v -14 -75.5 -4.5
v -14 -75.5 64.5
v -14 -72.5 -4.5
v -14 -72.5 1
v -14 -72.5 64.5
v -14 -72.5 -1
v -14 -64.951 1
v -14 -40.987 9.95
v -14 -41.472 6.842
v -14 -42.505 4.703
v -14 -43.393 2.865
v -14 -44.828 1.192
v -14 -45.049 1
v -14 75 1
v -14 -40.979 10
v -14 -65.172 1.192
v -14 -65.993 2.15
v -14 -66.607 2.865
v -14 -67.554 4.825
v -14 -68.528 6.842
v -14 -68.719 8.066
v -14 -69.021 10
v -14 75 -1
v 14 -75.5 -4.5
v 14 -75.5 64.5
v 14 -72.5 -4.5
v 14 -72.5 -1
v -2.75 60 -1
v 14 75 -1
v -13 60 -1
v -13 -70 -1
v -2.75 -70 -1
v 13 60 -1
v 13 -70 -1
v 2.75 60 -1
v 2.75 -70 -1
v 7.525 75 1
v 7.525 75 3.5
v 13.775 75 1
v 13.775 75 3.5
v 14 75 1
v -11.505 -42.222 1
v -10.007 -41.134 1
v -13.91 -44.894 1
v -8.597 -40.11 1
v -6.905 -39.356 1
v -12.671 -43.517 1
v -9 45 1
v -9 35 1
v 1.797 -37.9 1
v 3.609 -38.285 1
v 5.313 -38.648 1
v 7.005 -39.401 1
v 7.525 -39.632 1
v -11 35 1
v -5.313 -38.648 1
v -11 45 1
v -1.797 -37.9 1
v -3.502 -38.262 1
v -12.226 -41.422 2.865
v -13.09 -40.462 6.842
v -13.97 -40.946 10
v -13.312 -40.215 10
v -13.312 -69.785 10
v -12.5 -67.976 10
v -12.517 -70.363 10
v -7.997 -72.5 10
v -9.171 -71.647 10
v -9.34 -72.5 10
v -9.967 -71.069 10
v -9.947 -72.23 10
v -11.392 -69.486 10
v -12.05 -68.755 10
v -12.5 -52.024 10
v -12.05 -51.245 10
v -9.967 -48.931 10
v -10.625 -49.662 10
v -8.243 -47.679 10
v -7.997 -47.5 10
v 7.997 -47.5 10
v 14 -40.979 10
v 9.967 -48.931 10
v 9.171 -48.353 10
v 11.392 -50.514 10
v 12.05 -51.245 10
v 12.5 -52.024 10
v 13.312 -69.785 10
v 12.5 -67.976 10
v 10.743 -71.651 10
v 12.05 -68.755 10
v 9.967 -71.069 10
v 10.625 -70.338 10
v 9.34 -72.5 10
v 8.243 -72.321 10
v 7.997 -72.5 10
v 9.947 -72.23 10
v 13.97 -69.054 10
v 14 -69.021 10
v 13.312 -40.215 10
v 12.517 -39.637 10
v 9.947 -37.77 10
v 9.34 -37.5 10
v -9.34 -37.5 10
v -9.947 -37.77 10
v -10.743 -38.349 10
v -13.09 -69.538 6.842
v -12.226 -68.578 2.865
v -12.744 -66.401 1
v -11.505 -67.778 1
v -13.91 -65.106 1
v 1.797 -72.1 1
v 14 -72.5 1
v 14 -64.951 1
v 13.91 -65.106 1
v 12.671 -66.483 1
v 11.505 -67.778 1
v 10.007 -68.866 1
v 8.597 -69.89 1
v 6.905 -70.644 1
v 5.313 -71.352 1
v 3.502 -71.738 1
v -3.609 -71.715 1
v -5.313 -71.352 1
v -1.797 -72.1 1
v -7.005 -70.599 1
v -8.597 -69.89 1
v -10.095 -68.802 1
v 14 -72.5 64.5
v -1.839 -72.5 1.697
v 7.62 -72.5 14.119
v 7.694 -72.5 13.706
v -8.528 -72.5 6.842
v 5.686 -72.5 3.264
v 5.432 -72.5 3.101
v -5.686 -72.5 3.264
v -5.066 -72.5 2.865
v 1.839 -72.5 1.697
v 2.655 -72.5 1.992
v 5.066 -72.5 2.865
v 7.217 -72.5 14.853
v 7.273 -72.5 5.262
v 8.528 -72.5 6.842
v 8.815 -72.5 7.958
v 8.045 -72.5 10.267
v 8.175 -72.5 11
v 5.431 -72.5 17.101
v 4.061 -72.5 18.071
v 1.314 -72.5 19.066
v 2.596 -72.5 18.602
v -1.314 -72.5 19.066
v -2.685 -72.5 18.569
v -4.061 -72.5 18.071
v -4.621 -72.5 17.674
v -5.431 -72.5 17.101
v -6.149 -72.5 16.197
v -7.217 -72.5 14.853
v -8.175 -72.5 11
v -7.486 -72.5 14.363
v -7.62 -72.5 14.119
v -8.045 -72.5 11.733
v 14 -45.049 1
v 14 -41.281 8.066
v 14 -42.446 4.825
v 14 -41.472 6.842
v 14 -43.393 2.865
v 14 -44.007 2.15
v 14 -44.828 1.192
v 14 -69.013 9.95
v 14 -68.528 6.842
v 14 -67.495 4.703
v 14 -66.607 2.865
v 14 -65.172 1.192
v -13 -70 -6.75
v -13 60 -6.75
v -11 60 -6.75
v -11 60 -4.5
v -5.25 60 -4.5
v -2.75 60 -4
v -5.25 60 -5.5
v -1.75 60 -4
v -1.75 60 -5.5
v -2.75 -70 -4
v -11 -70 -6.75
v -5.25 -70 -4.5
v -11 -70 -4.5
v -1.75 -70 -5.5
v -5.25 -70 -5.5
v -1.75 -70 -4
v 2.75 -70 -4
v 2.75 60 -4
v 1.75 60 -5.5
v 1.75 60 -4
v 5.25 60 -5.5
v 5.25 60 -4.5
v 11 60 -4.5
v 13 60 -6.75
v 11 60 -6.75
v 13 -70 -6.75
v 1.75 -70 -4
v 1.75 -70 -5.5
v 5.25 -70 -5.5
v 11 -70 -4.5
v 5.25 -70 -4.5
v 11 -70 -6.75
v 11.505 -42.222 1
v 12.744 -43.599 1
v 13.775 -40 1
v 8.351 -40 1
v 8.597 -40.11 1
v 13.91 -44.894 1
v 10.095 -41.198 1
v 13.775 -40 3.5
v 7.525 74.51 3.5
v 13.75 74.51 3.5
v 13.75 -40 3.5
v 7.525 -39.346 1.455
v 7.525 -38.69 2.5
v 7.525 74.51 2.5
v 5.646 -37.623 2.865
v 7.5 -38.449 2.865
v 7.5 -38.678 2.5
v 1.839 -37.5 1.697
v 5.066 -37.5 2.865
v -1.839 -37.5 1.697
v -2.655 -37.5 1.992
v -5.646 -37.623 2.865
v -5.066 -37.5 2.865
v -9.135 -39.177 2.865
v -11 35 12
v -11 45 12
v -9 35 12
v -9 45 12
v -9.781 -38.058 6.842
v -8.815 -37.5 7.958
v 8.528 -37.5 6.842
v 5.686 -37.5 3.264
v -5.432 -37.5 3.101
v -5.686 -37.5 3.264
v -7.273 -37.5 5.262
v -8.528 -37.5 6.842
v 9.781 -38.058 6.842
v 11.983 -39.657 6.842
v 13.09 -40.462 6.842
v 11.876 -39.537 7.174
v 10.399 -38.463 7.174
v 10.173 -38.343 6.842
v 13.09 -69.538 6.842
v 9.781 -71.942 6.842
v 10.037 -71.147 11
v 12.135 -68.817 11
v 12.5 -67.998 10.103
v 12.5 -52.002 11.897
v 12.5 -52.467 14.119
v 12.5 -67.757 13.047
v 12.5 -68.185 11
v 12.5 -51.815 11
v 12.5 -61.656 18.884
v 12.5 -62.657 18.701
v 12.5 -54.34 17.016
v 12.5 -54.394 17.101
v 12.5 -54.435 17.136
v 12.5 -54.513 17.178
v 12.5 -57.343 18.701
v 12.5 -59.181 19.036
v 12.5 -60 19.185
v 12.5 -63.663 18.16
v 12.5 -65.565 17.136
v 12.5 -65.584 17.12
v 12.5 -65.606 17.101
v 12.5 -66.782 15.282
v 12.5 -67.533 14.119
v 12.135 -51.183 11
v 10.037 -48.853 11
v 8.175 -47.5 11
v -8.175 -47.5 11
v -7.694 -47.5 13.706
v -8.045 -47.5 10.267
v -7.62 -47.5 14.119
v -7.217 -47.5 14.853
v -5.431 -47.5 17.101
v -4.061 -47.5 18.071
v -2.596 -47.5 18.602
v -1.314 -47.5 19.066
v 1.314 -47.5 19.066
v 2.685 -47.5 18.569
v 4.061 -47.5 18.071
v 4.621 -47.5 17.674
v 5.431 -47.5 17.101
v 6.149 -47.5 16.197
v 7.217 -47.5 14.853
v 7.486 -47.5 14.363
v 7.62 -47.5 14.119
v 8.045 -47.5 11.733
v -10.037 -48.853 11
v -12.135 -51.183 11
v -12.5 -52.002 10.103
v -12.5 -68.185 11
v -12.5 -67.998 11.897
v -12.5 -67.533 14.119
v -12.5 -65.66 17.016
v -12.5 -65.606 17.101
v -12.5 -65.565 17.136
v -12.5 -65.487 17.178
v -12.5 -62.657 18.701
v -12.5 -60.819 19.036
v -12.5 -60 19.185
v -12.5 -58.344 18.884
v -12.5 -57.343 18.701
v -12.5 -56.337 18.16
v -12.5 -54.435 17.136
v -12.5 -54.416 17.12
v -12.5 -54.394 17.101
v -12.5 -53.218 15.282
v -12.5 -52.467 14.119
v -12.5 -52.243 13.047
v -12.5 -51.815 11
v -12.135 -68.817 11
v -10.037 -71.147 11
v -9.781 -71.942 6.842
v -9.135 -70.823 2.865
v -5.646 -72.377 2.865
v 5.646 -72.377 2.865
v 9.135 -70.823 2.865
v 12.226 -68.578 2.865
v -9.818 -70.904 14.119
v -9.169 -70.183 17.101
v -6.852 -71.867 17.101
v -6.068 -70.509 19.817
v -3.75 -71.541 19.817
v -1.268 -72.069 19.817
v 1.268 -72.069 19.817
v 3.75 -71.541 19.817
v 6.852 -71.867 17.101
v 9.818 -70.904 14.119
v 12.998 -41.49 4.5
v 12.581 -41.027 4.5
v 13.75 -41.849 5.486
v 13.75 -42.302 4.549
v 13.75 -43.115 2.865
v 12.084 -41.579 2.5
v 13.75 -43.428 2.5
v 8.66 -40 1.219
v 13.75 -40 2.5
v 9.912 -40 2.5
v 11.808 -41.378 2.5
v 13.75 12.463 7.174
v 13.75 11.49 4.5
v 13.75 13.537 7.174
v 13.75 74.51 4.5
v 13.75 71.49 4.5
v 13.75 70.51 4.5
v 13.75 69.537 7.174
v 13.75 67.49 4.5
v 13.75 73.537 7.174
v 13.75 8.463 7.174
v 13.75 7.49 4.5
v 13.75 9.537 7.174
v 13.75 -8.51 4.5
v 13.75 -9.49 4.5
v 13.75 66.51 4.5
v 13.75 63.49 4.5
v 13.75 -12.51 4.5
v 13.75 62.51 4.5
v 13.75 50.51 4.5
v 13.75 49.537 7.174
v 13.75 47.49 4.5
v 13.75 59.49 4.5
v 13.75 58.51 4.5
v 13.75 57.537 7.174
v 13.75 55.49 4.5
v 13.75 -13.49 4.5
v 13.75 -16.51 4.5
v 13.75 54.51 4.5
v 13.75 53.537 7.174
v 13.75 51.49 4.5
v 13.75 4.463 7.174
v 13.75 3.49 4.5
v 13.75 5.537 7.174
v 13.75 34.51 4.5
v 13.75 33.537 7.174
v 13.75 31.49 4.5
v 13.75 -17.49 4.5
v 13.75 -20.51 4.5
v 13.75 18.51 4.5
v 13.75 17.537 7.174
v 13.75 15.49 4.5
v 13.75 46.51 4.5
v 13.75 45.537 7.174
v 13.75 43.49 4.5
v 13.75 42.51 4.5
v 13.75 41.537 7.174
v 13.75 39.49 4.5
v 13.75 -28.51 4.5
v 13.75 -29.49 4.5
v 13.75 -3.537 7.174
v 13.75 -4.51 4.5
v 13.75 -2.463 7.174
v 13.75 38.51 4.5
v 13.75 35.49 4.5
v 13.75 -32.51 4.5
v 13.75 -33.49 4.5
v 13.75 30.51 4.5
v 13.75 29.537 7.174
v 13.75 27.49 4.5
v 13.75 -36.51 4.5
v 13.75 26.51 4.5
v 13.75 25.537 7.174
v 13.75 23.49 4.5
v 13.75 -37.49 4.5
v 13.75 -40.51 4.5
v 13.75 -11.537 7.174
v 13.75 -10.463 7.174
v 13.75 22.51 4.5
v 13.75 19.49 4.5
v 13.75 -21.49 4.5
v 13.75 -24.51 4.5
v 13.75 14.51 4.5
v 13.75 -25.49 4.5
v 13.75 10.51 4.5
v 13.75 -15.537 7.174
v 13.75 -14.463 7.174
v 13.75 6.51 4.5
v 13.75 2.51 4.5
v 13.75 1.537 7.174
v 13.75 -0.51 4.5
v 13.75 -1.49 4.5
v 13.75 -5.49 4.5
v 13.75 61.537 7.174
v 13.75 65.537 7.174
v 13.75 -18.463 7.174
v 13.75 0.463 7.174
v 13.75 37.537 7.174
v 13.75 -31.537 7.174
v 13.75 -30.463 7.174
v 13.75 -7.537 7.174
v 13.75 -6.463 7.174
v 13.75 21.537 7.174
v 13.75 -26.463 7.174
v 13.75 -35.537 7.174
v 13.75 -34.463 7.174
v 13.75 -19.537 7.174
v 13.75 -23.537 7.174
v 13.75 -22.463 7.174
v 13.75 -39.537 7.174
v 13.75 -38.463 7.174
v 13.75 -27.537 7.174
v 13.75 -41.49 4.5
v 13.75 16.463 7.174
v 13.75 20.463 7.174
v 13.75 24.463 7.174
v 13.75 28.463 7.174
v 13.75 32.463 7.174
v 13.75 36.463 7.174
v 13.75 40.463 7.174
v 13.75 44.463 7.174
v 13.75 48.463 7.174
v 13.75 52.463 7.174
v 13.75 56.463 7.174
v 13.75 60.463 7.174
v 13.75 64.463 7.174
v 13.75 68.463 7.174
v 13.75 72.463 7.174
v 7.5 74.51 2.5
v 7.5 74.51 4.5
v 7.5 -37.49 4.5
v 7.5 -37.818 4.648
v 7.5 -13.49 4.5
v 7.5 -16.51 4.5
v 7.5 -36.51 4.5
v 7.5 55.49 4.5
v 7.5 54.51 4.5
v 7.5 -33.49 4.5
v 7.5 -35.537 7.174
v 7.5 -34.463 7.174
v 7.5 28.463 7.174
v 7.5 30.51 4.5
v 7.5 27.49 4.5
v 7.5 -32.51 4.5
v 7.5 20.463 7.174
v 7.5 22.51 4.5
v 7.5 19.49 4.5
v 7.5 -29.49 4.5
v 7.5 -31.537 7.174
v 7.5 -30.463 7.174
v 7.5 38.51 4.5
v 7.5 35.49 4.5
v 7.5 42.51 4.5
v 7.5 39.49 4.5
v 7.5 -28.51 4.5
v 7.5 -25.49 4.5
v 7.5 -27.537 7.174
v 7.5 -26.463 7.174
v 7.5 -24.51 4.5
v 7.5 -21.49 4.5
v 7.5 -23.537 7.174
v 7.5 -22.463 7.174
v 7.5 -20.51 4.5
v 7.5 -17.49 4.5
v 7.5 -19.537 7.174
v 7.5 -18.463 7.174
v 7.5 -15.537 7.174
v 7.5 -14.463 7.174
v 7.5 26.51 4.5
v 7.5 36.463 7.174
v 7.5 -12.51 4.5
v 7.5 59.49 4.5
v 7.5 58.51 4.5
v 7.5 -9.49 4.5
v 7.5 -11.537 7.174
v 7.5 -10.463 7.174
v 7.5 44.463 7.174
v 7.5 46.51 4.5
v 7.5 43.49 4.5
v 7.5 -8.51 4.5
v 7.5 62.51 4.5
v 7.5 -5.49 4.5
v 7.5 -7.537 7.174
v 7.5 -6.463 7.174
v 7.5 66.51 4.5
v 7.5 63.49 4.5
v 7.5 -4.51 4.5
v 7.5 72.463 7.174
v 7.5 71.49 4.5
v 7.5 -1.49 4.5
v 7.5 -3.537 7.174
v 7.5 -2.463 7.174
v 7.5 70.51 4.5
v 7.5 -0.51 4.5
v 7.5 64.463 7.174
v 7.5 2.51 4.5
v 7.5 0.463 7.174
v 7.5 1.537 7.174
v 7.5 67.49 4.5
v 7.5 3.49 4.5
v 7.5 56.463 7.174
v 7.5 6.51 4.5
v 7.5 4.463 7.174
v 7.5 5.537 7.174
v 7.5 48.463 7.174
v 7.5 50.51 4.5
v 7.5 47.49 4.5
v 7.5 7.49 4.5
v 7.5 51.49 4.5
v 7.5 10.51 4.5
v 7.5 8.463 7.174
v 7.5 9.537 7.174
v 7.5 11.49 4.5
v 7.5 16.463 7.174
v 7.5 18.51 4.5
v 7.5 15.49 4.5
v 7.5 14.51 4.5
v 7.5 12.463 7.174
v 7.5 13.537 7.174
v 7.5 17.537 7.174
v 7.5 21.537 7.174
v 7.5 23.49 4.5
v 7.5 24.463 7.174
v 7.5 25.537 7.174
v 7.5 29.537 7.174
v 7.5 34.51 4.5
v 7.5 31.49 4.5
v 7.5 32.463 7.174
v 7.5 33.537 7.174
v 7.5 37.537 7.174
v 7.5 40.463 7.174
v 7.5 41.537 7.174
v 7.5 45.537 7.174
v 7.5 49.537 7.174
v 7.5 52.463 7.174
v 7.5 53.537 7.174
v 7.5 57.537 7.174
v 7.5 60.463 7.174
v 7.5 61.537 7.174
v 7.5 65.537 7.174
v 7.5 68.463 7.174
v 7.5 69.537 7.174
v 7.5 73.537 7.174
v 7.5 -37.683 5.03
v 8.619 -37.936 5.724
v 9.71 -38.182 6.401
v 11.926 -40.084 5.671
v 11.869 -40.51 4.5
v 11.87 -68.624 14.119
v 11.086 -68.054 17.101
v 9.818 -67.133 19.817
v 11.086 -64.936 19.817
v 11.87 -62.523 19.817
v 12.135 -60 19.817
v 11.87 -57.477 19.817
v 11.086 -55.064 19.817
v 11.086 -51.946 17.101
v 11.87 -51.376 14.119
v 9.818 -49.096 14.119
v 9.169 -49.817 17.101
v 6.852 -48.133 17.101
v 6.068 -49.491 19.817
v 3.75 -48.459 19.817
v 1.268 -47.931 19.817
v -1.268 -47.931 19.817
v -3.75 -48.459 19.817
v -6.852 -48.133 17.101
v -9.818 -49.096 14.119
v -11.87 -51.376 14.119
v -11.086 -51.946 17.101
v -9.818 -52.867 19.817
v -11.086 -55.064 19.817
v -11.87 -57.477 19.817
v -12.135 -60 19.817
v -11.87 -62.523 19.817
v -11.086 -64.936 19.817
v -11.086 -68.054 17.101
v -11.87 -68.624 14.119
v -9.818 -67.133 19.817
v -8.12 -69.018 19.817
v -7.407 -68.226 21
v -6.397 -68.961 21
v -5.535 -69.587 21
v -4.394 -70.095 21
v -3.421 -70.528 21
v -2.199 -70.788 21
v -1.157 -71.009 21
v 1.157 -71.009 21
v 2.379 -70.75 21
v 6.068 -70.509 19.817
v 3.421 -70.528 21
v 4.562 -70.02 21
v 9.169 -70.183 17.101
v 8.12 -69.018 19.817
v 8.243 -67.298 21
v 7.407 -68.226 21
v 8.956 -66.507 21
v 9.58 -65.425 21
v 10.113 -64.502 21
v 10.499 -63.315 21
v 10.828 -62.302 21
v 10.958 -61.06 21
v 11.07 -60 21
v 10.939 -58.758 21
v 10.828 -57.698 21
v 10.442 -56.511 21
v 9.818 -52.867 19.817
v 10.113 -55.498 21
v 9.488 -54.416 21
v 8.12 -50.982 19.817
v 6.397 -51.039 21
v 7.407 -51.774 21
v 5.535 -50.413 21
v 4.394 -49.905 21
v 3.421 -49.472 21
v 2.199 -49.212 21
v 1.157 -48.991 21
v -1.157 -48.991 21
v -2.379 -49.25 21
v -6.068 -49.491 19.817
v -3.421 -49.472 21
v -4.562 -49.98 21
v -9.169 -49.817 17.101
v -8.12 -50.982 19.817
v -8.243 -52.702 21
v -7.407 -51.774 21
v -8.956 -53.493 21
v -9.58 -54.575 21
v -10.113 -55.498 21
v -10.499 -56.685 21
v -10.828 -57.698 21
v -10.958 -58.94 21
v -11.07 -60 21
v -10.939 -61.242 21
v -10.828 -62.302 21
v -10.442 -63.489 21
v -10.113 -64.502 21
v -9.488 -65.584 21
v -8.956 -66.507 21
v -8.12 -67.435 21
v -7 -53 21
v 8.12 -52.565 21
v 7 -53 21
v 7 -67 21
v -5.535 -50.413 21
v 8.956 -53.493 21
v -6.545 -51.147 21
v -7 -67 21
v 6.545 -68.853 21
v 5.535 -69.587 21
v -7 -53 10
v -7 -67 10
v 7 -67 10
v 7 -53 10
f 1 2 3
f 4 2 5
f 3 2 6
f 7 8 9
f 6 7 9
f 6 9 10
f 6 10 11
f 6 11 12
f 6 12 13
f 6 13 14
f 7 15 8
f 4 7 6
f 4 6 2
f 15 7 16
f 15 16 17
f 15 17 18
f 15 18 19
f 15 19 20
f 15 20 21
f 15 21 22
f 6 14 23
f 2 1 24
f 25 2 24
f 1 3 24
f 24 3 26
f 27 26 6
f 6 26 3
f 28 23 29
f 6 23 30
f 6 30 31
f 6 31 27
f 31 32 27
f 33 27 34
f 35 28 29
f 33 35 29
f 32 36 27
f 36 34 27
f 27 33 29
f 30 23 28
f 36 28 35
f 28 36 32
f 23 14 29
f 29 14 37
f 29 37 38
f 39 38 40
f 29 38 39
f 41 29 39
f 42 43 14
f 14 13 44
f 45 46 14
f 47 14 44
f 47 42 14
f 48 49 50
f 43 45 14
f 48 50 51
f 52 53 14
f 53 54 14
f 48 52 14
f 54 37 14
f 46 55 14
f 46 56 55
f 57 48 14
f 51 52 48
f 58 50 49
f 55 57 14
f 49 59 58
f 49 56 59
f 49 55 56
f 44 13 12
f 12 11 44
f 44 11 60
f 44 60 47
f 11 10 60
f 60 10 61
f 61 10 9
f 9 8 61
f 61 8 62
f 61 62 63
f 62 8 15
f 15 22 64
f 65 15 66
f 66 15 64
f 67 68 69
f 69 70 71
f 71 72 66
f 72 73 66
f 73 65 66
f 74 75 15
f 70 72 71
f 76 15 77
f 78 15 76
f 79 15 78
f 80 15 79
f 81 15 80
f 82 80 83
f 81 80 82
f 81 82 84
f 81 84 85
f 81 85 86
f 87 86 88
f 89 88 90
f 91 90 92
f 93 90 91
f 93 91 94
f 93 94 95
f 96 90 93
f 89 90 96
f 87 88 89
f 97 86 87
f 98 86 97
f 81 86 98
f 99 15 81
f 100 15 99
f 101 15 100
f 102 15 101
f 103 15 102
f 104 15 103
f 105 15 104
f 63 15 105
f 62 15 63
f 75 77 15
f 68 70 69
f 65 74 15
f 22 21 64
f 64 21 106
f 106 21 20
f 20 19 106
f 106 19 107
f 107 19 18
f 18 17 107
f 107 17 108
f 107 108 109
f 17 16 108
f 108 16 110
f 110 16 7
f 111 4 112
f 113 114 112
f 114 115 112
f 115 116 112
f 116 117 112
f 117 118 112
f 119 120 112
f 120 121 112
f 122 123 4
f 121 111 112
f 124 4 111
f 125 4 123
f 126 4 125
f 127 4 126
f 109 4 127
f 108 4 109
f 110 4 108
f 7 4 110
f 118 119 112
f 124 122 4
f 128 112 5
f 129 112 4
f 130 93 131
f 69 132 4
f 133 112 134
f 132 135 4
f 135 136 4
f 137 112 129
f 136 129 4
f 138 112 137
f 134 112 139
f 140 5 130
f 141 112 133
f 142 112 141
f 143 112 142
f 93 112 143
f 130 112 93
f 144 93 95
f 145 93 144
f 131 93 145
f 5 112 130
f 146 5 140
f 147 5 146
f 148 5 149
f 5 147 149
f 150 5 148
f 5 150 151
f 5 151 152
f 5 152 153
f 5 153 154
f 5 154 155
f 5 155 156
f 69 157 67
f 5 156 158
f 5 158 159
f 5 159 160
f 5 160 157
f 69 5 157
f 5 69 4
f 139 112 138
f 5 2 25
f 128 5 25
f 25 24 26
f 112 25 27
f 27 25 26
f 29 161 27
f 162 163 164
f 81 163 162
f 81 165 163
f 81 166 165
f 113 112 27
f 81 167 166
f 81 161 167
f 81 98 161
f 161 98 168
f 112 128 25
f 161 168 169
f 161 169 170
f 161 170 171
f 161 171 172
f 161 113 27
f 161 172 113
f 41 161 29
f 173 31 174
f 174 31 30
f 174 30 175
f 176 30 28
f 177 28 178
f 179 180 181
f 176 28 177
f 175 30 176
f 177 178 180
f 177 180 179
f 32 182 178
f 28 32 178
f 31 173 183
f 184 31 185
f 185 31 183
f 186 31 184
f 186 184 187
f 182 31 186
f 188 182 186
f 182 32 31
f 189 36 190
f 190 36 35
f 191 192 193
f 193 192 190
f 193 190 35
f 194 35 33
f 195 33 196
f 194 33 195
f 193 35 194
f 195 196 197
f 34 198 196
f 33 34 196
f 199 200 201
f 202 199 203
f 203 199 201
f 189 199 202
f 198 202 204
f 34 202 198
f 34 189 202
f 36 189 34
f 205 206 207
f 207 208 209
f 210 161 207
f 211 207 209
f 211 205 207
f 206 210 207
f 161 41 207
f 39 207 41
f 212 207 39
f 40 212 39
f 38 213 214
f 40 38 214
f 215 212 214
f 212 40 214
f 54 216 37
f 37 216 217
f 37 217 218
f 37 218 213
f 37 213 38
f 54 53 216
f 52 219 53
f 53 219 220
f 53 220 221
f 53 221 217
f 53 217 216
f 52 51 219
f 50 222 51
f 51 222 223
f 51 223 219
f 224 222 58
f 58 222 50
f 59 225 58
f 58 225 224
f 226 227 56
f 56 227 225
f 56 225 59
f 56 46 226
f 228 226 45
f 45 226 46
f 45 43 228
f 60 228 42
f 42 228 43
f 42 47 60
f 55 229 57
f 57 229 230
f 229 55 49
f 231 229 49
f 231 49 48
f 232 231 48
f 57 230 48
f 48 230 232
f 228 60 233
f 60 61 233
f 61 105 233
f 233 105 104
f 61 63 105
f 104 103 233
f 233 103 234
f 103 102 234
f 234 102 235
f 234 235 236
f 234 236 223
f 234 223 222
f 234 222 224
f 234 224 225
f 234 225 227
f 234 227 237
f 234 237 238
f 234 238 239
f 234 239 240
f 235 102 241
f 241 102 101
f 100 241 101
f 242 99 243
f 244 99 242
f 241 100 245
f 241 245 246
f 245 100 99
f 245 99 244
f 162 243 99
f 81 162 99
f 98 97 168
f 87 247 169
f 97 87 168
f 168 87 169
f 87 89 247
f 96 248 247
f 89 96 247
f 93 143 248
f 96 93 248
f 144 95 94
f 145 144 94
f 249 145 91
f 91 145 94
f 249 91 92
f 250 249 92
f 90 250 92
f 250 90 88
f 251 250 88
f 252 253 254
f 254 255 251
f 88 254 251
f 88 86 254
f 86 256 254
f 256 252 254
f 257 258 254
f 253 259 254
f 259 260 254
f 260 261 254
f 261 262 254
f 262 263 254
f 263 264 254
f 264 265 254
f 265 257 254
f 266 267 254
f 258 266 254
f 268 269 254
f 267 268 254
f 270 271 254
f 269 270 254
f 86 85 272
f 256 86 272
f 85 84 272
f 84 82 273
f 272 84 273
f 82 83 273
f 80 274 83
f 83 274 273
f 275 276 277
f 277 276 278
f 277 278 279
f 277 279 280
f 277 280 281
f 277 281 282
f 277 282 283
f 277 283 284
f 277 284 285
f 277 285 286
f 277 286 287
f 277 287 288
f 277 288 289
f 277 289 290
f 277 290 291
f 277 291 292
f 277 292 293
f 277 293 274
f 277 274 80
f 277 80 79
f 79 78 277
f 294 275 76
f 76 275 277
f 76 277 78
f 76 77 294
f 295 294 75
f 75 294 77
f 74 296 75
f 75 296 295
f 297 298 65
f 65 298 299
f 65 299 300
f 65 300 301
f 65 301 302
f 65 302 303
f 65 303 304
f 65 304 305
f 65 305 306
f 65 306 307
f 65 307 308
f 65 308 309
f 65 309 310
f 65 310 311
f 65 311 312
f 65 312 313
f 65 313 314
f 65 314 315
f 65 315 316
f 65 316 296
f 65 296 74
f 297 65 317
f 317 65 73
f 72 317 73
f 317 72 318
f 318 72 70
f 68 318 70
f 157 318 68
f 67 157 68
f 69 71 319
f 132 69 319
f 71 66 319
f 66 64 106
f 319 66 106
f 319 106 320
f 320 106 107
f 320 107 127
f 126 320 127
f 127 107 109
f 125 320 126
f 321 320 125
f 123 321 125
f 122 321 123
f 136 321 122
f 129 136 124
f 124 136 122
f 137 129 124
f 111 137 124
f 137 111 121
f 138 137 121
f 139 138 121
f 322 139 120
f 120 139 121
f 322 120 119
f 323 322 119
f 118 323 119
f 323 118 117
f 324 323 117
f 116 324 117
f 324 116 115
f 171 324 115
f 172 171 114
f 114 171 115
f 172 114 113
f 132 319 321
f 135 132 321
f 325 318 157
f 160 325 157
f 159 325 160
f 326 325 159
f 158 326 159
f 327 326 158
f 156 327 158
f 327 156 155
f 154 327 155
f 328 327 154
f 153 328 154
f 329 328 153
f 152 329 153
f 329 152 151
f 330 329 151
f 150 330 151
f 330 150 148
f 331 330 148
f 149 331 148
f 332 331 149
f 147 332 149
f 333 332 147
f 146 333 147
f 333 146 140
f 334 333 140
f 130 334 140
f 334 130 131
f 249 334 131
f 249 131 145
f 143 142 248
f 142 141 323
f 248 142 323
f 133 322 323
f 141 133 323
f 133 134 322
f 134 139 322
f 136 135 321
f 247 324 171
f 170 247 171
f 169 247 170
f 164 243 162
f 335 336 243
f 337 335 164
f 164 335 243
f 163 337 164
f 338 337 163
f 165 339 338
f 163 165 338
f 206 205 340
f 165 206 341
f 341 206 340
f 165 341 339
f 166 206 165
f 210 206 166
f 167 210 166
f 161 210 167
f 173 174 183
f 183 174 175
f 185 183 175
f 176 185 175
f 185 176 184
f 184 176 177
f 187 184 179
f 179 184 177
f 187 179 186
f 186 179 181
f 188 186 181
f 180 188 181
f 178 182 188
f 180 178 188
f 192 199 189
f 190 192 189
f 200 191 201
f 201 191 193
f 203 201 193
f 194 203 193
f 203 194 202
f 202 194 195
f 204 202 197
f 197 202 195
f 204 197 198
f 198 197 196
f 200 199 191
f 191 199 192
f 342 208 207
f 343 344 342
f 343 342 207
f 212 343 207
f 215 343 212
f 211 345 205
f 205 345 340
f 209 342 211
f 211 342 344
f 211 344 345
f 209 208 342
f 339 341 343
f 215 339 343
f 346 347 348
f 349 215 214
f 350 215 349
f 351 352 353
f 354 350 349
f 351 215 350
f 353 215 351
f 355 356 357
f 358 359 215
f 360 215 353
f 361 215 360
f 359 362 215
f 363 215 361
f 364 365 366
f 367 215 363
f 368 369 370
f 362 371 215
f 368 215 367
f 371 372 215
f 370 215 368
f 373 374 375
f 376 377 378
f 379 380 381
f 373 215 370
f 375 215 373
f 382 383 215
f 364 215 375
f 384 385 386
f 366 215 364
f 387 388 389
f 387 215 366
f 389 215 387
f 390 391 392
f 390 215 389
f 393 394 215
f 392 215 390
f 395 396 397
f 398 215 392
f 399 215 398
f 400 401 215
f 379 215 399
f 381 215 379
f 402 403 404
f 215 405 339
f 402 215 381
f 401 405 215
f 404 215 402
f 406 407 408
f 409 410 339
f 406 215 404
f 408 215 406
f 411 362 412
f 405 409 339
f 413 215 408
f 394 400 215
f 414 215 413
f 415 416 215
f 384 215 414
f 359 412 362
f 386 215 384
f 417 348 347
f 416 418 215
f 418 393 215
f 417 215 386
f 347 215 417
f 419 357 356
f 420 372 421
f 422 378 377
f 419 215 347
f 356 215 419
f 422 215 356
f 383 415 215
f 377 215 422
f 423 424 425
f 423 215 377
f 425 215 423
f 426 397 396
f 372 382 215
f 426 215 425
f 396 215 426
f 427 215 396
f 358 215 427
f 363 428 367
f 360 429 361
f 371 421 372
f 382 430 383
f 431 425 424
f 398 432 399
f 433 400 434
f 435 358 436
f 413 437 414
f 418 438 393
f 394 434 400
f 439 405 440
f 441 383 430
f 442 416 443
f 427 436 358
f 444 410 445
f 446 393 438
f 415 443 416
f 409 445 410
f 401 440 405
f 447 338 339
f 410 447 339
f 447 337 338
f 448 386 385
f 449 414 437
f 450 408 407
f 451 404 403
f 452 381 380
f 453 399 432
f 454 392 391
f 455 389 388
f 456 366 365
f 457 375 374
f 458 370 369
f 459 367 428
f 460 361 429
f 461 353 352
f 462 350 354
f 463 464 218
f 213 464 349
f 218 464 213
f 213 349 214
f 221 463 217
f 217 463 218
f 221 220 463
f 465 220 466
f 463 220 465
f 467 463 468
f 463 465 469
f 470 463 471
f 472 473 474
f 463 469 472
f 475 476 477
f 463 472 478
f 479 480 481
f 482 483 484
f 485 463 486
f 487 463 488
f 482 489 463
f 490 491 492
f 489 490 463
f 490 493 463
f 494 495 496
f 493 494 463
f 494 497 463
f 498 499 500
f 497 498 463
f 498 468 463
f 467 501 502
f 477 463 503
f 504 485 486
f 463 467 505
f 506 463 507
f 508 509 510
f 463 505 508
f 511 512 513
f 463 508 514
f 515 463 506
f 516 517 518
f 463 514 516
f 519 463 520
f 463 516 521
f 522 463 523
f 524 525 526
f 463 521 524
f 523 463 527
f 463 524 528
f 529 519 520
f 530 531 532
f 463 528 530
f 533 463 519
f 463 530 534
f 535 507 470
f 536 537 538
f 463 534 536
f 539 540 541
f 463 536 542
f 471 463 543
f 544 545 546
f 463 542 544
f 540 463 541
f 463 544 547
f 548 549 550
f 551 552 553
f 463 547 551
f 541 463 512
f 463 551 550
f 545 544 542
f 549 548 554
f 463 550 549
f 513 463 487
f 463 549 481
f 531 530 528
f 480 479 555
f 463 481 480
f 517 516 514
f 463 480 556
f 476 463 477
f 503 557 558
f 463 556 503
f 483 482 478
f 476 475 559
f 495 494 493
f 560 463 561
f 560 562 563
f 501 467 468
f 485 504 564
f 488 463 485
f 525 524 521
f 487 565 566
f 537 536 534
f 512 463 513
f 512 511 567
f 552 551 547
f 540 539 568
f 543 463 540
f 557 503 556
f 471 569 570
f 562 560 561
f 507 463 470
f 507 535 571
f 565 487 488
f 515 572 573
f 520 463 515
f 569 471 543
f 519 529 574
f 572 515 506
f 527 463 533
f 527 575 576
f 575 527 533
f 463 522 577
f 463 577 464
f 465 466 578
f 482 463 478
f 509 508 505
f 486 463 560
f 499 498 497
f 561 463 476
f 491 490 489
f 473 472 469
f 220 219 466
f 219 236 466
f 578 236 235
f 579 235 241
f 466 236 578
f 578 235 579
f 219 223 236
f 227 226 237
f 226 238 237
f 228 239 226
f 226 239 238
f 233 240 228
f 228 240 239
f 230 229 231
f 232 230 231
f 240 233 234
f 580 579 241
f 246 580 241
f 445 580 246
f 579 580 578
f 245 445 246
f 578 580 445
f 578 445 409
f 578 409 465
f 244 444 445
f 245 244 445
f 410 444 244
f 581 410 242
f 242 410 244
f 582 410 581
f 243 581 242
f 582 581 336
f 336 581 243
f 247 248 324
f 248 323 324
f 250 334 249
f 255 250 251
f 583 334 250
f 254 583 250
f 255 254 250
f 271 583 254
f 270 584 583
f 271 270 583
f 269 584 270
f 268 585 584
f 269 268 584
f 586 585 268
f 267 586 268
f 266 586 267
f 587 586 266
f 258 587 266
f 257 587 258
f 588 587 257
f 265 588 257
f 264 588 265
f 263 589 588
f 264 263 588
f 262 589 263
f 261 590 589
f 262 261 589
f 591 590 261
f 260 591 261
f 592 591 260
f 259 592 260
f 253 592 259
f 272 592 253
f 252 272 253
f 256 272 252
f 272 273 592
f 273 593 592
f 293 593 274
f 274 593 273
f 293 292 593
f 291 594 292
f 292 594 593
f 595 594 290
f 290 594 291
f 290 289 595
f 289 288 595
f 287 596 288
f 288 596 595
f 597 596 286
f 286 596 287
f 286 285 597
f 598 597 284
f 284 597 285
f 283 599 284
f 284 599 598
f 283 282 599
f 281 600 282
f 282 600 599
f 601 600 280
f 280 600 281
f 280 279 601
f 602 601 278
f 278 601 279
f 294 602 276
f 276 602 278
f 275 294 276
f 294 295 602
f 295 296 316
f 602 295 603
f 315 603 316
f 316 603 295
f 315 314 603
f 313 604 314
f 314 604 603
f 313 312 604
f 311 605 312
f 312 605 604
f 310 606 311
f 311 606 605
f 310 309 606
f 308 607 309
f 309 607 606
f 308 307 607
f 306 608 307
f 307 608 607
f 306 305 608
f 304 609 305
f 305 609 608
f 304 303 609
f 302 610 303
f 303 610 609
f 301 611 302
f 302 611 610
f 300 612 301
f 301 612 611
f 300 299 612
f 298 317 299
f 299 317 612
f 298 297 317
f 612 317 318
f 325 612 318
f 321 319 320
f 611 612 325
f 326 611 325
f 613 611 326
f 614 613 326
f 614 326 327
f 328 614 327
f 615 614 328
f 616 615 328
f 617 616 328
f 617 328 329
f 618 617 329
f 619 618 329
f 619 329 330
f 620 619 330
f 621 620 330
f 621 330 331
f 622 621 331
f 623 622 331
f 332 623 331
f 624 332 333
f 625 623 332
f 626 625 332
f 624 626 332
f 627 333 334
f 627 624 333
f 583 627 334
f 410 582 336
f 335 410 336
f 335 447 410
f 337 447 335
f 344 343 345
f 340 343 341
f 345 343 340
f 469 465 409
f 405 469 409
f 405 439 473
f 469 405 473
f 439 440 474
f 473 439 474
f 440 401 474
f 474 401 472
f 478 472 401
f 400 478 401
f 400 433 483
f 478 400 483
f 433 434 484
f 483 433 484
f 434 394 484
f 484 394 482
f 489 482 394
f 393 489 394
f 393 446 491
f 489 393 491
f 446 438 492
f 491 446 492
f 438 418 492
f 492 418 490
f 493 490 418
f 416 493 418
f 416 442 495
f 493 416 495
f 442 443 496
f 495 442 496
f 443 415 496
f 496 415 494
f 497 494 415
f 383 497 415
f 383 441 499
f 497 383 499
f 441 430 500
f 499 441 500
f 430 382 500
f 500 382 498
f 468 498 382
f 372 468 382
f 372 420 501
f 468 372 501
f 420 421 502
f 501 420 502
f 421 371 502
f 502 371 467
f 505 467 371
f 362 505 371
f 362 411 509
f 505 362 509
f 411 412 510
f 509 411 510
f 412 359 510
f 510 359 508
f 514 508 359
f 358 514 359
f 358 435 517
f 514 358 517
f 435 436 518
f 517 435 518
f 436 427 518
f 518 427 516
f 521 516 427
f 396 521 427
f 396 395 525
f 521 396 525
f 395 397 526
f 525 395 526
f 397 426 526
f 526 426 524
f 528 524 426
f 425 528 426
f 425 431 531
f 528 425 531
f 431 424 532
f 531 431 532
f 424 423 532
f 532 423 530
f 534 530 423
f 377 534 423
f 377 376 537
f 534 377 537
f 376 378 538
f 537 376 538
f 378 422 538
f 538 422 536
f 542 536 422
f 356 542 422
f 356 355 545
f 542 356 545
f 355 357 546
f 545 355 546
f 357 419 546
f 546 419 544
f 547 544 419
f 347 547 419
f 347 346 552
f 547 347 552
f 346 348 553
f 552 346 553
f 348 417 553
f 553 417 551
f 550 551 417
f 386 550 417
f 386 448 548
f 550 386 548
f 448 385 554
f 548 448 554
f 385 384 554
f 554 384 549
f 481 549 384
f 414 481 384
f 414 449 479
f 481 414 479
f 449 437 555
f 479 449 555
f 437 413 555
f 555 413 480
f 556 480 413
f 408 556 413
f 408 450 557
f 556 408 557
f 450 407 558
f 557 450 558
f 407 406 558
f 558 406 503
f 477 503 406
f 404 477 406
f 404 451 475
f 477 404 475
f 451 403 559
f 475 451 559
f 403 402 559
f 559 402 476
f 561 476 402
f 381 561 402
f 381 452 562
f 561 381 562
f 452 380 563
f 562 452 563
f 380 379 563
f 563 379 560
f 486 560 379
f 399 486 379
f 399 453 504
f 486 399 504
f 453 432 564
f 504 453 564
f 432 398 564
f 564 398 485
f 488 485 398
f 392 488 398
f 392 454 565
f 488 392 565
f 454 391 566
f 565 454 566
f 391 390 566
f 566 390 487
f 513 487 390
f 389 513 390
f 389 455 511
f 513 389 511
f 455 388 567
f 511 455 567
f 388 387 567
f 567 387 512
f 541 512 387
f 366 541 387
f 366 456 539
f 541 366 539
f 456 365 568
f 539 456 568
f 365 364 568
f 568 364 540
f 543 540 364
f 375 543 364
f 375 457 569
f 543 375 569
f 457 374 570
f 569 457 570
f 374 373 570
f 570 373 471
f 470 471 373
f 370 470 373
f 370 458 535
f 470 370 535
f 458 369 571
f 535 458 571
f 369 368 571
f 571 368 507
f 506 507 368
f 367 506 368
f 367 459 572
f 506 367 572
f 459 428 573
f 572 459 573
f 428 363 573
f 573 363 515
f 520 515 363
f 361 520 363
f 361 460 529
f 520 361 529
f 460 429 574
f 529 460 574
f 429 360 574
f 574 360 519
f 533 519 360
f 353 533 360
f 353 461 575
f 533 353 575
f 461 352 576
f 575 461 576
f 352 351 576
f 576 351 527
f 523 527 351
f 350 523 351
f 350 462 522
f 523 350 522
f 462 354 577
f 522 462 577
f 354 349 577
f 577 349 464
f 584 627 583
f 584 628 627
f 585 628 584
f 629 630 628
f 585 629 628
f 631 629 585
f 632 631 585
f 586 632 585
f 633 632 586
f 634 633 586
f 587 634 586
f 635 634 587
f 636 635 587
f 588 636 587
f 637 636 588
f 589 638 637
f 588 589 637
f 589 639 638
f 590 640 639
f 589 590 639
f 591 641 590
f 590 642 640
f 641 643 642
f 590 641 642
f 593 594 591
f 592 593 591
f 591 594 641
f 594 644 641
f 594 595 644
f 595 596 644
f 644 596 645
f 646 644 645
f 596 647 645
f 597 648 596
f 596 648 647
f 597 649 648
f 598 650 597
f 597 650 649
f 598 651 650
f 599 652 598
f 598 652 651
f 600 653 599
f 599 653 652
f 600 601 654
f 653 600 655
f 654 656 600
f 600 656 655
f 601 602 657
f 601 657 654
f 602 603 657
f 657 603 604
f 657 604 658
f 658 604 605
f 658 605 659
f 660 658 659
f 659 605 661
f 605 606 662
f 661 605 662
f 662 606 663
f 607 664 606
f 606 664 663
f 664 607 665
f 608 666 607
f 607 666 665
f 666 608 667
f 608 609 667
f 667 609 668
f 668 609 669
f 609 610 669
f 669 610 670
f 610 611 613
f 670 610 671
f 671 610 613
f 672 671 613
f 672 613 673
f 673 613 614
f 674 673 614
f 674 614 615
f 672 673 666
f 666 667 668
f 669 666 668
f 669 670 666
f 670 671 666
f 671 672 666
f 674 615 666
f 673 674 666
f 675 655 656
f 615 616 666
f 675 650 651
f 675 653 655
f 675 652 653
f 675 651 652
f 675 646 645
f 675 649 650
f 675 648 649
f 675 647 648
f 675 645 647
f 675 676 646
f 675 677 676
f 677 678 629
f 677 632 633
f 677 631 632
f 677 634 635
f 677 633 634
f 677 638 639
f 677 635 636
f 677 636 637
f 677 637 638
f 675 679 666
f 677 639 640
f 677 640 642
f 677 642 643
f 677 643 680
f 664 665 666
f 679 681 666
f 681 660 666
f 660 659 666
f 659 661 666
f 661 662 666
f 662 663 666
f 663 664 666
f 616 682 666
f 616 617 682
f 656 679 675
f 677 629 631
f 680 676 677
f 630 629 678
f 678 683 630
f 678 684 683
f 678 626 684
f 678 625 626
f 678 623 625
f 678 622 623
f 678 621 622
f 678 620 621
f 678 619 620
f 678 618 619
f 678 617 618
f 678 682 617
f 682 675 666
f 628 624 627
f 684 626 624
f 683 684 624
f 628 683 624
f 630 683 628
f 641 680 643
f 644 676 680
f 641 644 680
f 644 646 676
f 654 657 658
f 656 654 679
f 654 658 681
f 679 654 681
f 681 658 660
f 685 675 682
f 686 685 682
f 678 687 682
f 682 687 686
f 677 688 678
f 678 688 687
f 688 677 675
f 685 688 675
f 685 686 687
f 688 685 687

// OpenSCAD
// file: std_mechanical_lib_rackAndPinion.scad
// Rack and pinion gears GPL (c) SASA October 2013.
//
// Very simple rack and pinion gear based on GPL code.
//
// I've made corrections to both rack and gear code I used (below) and unified
// and simplified both bits of code.  Corrects the use of circular pitch so
// rack and pinion match nicely.  Ammendments to the code and interface to
// simplify use and improve readability. Many bells and whistles dropped in
// favour of being dead simple.  I also opted for hard wiring the pressure
// angle to 20 degrees since this seemed a kind of standard.
//
// Based on the works (thanks!): Parametric Involute Bevel and Spur Gears by
// GregFrost GNU GPL license.  http://www.thingiverse.com/thing:3575 Parametric
// Modular Rack by Mark "Ckaos" Moissette GNU GPL license.  (Rack based on the
// work of MattMoses and Fdavies
// http://forums.reprap.org/read.php?1,51452,52099#msg-52099 and Forrest Higgs:
// 
// The originals have many fine additions such as helical gears which I've
// dropped in favour of simplicity (as befits my needs) - it wouldn't be a big
// jobs to nobble my changes backwards or their features forwards.

pi=3.1415926535897932384626433832795;
$fn=50;

// examples of usage
// include this in your code:
// use <rack_and_pinion.scad>
// then:
// a simple rack
// rack(4,20,10,1);//CP (mm/tooth), width (mm), thickness(of base) (mm), # teeth
// a simple pinion and translation / rotation to make it mesh the rack
// translate([0,-8.5,0])rotate([0,0,360/10/2]) pinion(4,10,10,5);





module rack(cp, N, width, thickness){
// cp = circular pitch - for rack = pitch in mm/per tooth
// N = number of teeth
// width = width of rack
// thickness = thickness of support under teeth (0 for no support)

	a = 1.0*cp/pi; // addendum (also known as "module")
	d = 1.1*cp/pi; // dedendum (this is set by a standard)
	height=(d+a);

	// find the tangent of pressure angle once
	tanPA = tan(20);
	// length of bottom and top horizontal segments of tooth profile
	botL = (cp/2 - 2*d*tanPA);
	topL = (cp/2 - 2*a*tanPA);

	slantLng=tanPA*height;
	realBase=2*slantLng+topL;

	offset=topL+botL+2*slantLng;
	length=(realBase+botL)*N;

	supportSize=width;
	translate([botL/2,0,0])
	rotate([90,0,0]){
		translate([0,supportSize/2,0]){
			union(){
				cube(size=[length,width,thickness],center=true);
				for (i = [0:N-1]){
					translate([i*offset-length/2+realBase/2,0,thickness/2]){
						trapezoid([topL,supportSize],[realBase,supportSize],height);
						}
					}
				}
			}
		}
	}

module pinion (cp, N, width, shaft_diameter, backlash=0){
// cp= circular pitch - for pinion pitch in mm/per as measured along the ptich radius (~1/2 way up tooth)
// N= number of teeth
// width= width of the gear
// shaft_diameter= diameter of hole for shaft
// backlash - I think this is just a bodge for making things fit when printed but I never tested it

	if (cp==false && diametral_pitch==false) 
		echo("MCAD ERROR: pinion module needs either a diametral_pitch or cp");

	//Convert diametrial pitch to our native circular pitch
	cp = (cp!=false?cp:180/diametral_pitch);

	// Pitch diameter: Diameter of pitch circle.
	pitch_diameter  =  N * cp / pi;
	pitch_radius = pitch_diameter/2;
	echo ("Teeth:", N, " Pitch radius:", pitch_radius);
	// Base Circle
	base_radius = pitch_radius*cos(20);

	// Addendum: Radial distance from pitch circle to outside circle.
	addendum = cp/pi;

	//Outer Circle
	outer_radius = pitch_radius+addendum;

	// Dedendum: Radial distance from pitch circle to root diameter
	dedendum = addendum*1.1;

	// Root diameter: Diameter of bottom of tooth spaces.
	root_radius = pitch_radius-dedendum;

	backlash_angle = backlash / pitch_radius * 180 / pi;
	half_thick_angle = (360 / N - backlash_angle) / 4;

	difference(){
		linear_extrude (height=width, convexity=10, twist=0)
		pinion_shape(N, pitch_radius = pitch_radius, root_radius = root_radius,
			base_radius = base_radius, outer_radius = outer_radius,
			half_thick_angle = half_thick_angle, involute_facets=0);

		translate([0,0,-1]) cylinder(r=shaft_diameter/2,h=2+width);
		}

	echo("Root radius =",root_radius,"\nPitch radius=",pitch_radius,"\n Tip radius=",outer_radius,"\n");
	}

module pinion_shape ( N, pitch_radius, root_radius, base_radius, outer_radius, half_thick_angle, involute_facets) {
	union(){
		rotate (half_thick_angle) circle ($fn=N*2, r=root_radius);
		for (i = [1:N]) {
			rotate ([0,0,i*360/N]) {
				involute_pinion_tooth (
					pitch_radius = pitch_radius,
					root_radius = root_radius,
					base_radius = base_radius,
					outer_radius = outer_radius,
					half_thick_angle = half_thick_angle,
					involute_facets=involute_facets);
				}
			}
		}
	}

module involute_pinion_tooth ( pitch_radius, root_radius, base_radius, outer_radius, half_thick_angle, involute_facets) {
	min_radius = max (base_radius,root_radius);

	pitch_point = involute (base_radius, involute_intersect_angle (base_radius, pitch_radius));
	pitch_angle = atan2 (pitch_point[1], pitch_point[0]);
	centre_angle = pitch_angle + half_thick_angle;

	start_angle = involute_intersect_angle (base_radius, min_radius);
	stop_angle = involute_intersect_angle (base_radius, outer_radius);

	res=(involute_facets!=0)?involute_facets:($fn==0)?5:$fn/4;

	union () {
		for (i=[1:res])
		assign ( point1=involute (base_radius,start_angle+(stop_angle - start_angle)*(i-1)/res), point2=involute (base_radius,start_angle+(stop_angle - start_angle)*i/res)) {
			assign (
				side1_point1=rotate_point (centre_angle, point1),
				side1_point2=rotate_point (centre_angle, point2),
				side2_point1=mirror_point (rotate_point (centre_angle, point1)),
				side2_point2=mirror_point (rotate_point (centre_angle, point2))) {
				polygon ( points=[[0,0],side1_point1,side1_point2,side2_point2,side2_point1], paths=[[0,1,2,3,4,0]]);
				}
			}
		}
	}

// Mathematical Functions
//===============

// Finds the angle of the involute about the base radius at the given distance (radius) from it's center.
//source: http://www.mathhelpforum.com/math-help/geometry/136011-circle-involute-solving-y-any-given-x.html

function involute_intersect_angle (base_radius, radius) = sqrt (pow (radius/base_radius, 2) - 1) * 180 / pi;

// Calculate the involute position for a given base radius and involute angle.

function rotated_involute(rotate,base_radius,involute_angle)=[cos(rotate)*involute(base_radius, involute_angle)[0]+sin(rotate)*involute(base_radius, involute_angle)[1],cos(rotate)*involute(base_radius, involute_angle)[1]-sin(rotate)*involute(base_radius, involute_angle)[0]];

function mirror_point(coord)=[coord[0],-coord[1]];

function rotate_point(rotate,coord)=[cos(rotate)*coord[0]+sin(rotate)*coord[1],cos(rotate)*coord[1]-sin(rotate)*coord[0]];

function involute (base_radius, involute_angle)=[base_radius*(cos(involute_angle)+involute_angle*pi/180*sin(involute_angle)),base_radius*(sin(involute_angle)-involute_angle*pi/180*cos(involute_angle))];




module trapezoid(top,base,height){
	//echo ("test",base[0]);
	basePT1=[ -base[0]/2, base[1]/2, 0];
	basePT2=[ base[0]/2, base[1]/2, 0];
	basePT3=[ base[0]/2, -base[1]/2, 0];
	basePT4=[ -base[0]/2, -base[1]/2, 0];
	topPT1=[ -top[0]/2, top[1]/2, height];
	topPT2=[ top[0]/2, top[1]/2, height];
	topPT3=[ top[0]/2, -top[1]/2, height];
	topPT4=[ -top[0]/2, -top[1]/2, height];
	polyhedron(points=[ basePT1, basePT2, basePT3, basePT4, topPT1, topPT2, topPT3, topPT4],triangles=[[0,1,2], [0,2,3],[3,7,0], [7,4,0],[1,6,2], [1,5,6],[2,6,3], [3,6,7],[5,1,0],[4,5,0],[7,5,4],[5,7,6]]);
	}
// main file
use <std_mechanical_lib_rackAndPinion.scad>

module tray(){
	//mainTray
	color([0.2,0.8,0.9]) cube(size=[28,150,2],center=true);
	color([0.2,0.8,0.9]) translate([0,-74,30]) cube(size=[28,3,69],center=true);
	//cuvetteHolder
	difference(){
		intersection(){
			translate([0,-60,11]) cube(size=[25,25,20],center=true);
			translate([0,-60,11]) sphere(r=15,center=true);
		}
		translate([0,-60,15]) cube(size=[14,14,25],center=true);
	}
	intersection(){
		translate([0,-55,5]) cube(size=[28,35,10],center=true);
		translate([0,-55,11]) sphere(r=20,center=true);
	}
	//rackGear
	translate([7.5,15,3.5]){
		rotate([90,180,90]){
				rack(4,30,6.25,2);
		}
	}
	//rackSupport
	color([1,0.4,0]){
	translate([10.65,17.5,2]){
		cube(size=[6.25,115,3],center=true);
	}
	//opticalSensorBlock
	translate([-10,40,6]){
		cube(size=[2,10,12],center=true);
	}
	}
}

module traySupports(){
	color([1,0.4,0]){
	translate([-3.75,-5,-3]){
		cube(size=[2,130,4],center=true);
	}
	translate([3.75,-5,-3]){
		cube(size=[2,130,4],center=true);
	}
	//lower inside rails
	translate([3.5,-5,-4.75]){
		cube(size=[3.5,130,1.5],center=true);
	}
	translate([-3.5,-5,-4.75]){
		cube(size=[3.5,130,1.5],center=true);
	}

	translate([-12,-5,-3]){
		cube(size=[2,130,7.5],center=true);
	}
	translate([12,-5,-3]){
		cube(size=[2,130,7.5],center=true);
	}
	translate([-8,-5,-2]){
		cube(size=[7,130,5],center=true);
	}
	translate([8,-5,-2]){
		cube(size=[7,130,5],center=true);
	}
	}
}

//cuvetteTrayMovement
translate([0,0,0]){
	tray();
	traySupports();
	//cuvette
//	%translate([0,-60,35]) cube(size=[12,12,45],center=true);
}
